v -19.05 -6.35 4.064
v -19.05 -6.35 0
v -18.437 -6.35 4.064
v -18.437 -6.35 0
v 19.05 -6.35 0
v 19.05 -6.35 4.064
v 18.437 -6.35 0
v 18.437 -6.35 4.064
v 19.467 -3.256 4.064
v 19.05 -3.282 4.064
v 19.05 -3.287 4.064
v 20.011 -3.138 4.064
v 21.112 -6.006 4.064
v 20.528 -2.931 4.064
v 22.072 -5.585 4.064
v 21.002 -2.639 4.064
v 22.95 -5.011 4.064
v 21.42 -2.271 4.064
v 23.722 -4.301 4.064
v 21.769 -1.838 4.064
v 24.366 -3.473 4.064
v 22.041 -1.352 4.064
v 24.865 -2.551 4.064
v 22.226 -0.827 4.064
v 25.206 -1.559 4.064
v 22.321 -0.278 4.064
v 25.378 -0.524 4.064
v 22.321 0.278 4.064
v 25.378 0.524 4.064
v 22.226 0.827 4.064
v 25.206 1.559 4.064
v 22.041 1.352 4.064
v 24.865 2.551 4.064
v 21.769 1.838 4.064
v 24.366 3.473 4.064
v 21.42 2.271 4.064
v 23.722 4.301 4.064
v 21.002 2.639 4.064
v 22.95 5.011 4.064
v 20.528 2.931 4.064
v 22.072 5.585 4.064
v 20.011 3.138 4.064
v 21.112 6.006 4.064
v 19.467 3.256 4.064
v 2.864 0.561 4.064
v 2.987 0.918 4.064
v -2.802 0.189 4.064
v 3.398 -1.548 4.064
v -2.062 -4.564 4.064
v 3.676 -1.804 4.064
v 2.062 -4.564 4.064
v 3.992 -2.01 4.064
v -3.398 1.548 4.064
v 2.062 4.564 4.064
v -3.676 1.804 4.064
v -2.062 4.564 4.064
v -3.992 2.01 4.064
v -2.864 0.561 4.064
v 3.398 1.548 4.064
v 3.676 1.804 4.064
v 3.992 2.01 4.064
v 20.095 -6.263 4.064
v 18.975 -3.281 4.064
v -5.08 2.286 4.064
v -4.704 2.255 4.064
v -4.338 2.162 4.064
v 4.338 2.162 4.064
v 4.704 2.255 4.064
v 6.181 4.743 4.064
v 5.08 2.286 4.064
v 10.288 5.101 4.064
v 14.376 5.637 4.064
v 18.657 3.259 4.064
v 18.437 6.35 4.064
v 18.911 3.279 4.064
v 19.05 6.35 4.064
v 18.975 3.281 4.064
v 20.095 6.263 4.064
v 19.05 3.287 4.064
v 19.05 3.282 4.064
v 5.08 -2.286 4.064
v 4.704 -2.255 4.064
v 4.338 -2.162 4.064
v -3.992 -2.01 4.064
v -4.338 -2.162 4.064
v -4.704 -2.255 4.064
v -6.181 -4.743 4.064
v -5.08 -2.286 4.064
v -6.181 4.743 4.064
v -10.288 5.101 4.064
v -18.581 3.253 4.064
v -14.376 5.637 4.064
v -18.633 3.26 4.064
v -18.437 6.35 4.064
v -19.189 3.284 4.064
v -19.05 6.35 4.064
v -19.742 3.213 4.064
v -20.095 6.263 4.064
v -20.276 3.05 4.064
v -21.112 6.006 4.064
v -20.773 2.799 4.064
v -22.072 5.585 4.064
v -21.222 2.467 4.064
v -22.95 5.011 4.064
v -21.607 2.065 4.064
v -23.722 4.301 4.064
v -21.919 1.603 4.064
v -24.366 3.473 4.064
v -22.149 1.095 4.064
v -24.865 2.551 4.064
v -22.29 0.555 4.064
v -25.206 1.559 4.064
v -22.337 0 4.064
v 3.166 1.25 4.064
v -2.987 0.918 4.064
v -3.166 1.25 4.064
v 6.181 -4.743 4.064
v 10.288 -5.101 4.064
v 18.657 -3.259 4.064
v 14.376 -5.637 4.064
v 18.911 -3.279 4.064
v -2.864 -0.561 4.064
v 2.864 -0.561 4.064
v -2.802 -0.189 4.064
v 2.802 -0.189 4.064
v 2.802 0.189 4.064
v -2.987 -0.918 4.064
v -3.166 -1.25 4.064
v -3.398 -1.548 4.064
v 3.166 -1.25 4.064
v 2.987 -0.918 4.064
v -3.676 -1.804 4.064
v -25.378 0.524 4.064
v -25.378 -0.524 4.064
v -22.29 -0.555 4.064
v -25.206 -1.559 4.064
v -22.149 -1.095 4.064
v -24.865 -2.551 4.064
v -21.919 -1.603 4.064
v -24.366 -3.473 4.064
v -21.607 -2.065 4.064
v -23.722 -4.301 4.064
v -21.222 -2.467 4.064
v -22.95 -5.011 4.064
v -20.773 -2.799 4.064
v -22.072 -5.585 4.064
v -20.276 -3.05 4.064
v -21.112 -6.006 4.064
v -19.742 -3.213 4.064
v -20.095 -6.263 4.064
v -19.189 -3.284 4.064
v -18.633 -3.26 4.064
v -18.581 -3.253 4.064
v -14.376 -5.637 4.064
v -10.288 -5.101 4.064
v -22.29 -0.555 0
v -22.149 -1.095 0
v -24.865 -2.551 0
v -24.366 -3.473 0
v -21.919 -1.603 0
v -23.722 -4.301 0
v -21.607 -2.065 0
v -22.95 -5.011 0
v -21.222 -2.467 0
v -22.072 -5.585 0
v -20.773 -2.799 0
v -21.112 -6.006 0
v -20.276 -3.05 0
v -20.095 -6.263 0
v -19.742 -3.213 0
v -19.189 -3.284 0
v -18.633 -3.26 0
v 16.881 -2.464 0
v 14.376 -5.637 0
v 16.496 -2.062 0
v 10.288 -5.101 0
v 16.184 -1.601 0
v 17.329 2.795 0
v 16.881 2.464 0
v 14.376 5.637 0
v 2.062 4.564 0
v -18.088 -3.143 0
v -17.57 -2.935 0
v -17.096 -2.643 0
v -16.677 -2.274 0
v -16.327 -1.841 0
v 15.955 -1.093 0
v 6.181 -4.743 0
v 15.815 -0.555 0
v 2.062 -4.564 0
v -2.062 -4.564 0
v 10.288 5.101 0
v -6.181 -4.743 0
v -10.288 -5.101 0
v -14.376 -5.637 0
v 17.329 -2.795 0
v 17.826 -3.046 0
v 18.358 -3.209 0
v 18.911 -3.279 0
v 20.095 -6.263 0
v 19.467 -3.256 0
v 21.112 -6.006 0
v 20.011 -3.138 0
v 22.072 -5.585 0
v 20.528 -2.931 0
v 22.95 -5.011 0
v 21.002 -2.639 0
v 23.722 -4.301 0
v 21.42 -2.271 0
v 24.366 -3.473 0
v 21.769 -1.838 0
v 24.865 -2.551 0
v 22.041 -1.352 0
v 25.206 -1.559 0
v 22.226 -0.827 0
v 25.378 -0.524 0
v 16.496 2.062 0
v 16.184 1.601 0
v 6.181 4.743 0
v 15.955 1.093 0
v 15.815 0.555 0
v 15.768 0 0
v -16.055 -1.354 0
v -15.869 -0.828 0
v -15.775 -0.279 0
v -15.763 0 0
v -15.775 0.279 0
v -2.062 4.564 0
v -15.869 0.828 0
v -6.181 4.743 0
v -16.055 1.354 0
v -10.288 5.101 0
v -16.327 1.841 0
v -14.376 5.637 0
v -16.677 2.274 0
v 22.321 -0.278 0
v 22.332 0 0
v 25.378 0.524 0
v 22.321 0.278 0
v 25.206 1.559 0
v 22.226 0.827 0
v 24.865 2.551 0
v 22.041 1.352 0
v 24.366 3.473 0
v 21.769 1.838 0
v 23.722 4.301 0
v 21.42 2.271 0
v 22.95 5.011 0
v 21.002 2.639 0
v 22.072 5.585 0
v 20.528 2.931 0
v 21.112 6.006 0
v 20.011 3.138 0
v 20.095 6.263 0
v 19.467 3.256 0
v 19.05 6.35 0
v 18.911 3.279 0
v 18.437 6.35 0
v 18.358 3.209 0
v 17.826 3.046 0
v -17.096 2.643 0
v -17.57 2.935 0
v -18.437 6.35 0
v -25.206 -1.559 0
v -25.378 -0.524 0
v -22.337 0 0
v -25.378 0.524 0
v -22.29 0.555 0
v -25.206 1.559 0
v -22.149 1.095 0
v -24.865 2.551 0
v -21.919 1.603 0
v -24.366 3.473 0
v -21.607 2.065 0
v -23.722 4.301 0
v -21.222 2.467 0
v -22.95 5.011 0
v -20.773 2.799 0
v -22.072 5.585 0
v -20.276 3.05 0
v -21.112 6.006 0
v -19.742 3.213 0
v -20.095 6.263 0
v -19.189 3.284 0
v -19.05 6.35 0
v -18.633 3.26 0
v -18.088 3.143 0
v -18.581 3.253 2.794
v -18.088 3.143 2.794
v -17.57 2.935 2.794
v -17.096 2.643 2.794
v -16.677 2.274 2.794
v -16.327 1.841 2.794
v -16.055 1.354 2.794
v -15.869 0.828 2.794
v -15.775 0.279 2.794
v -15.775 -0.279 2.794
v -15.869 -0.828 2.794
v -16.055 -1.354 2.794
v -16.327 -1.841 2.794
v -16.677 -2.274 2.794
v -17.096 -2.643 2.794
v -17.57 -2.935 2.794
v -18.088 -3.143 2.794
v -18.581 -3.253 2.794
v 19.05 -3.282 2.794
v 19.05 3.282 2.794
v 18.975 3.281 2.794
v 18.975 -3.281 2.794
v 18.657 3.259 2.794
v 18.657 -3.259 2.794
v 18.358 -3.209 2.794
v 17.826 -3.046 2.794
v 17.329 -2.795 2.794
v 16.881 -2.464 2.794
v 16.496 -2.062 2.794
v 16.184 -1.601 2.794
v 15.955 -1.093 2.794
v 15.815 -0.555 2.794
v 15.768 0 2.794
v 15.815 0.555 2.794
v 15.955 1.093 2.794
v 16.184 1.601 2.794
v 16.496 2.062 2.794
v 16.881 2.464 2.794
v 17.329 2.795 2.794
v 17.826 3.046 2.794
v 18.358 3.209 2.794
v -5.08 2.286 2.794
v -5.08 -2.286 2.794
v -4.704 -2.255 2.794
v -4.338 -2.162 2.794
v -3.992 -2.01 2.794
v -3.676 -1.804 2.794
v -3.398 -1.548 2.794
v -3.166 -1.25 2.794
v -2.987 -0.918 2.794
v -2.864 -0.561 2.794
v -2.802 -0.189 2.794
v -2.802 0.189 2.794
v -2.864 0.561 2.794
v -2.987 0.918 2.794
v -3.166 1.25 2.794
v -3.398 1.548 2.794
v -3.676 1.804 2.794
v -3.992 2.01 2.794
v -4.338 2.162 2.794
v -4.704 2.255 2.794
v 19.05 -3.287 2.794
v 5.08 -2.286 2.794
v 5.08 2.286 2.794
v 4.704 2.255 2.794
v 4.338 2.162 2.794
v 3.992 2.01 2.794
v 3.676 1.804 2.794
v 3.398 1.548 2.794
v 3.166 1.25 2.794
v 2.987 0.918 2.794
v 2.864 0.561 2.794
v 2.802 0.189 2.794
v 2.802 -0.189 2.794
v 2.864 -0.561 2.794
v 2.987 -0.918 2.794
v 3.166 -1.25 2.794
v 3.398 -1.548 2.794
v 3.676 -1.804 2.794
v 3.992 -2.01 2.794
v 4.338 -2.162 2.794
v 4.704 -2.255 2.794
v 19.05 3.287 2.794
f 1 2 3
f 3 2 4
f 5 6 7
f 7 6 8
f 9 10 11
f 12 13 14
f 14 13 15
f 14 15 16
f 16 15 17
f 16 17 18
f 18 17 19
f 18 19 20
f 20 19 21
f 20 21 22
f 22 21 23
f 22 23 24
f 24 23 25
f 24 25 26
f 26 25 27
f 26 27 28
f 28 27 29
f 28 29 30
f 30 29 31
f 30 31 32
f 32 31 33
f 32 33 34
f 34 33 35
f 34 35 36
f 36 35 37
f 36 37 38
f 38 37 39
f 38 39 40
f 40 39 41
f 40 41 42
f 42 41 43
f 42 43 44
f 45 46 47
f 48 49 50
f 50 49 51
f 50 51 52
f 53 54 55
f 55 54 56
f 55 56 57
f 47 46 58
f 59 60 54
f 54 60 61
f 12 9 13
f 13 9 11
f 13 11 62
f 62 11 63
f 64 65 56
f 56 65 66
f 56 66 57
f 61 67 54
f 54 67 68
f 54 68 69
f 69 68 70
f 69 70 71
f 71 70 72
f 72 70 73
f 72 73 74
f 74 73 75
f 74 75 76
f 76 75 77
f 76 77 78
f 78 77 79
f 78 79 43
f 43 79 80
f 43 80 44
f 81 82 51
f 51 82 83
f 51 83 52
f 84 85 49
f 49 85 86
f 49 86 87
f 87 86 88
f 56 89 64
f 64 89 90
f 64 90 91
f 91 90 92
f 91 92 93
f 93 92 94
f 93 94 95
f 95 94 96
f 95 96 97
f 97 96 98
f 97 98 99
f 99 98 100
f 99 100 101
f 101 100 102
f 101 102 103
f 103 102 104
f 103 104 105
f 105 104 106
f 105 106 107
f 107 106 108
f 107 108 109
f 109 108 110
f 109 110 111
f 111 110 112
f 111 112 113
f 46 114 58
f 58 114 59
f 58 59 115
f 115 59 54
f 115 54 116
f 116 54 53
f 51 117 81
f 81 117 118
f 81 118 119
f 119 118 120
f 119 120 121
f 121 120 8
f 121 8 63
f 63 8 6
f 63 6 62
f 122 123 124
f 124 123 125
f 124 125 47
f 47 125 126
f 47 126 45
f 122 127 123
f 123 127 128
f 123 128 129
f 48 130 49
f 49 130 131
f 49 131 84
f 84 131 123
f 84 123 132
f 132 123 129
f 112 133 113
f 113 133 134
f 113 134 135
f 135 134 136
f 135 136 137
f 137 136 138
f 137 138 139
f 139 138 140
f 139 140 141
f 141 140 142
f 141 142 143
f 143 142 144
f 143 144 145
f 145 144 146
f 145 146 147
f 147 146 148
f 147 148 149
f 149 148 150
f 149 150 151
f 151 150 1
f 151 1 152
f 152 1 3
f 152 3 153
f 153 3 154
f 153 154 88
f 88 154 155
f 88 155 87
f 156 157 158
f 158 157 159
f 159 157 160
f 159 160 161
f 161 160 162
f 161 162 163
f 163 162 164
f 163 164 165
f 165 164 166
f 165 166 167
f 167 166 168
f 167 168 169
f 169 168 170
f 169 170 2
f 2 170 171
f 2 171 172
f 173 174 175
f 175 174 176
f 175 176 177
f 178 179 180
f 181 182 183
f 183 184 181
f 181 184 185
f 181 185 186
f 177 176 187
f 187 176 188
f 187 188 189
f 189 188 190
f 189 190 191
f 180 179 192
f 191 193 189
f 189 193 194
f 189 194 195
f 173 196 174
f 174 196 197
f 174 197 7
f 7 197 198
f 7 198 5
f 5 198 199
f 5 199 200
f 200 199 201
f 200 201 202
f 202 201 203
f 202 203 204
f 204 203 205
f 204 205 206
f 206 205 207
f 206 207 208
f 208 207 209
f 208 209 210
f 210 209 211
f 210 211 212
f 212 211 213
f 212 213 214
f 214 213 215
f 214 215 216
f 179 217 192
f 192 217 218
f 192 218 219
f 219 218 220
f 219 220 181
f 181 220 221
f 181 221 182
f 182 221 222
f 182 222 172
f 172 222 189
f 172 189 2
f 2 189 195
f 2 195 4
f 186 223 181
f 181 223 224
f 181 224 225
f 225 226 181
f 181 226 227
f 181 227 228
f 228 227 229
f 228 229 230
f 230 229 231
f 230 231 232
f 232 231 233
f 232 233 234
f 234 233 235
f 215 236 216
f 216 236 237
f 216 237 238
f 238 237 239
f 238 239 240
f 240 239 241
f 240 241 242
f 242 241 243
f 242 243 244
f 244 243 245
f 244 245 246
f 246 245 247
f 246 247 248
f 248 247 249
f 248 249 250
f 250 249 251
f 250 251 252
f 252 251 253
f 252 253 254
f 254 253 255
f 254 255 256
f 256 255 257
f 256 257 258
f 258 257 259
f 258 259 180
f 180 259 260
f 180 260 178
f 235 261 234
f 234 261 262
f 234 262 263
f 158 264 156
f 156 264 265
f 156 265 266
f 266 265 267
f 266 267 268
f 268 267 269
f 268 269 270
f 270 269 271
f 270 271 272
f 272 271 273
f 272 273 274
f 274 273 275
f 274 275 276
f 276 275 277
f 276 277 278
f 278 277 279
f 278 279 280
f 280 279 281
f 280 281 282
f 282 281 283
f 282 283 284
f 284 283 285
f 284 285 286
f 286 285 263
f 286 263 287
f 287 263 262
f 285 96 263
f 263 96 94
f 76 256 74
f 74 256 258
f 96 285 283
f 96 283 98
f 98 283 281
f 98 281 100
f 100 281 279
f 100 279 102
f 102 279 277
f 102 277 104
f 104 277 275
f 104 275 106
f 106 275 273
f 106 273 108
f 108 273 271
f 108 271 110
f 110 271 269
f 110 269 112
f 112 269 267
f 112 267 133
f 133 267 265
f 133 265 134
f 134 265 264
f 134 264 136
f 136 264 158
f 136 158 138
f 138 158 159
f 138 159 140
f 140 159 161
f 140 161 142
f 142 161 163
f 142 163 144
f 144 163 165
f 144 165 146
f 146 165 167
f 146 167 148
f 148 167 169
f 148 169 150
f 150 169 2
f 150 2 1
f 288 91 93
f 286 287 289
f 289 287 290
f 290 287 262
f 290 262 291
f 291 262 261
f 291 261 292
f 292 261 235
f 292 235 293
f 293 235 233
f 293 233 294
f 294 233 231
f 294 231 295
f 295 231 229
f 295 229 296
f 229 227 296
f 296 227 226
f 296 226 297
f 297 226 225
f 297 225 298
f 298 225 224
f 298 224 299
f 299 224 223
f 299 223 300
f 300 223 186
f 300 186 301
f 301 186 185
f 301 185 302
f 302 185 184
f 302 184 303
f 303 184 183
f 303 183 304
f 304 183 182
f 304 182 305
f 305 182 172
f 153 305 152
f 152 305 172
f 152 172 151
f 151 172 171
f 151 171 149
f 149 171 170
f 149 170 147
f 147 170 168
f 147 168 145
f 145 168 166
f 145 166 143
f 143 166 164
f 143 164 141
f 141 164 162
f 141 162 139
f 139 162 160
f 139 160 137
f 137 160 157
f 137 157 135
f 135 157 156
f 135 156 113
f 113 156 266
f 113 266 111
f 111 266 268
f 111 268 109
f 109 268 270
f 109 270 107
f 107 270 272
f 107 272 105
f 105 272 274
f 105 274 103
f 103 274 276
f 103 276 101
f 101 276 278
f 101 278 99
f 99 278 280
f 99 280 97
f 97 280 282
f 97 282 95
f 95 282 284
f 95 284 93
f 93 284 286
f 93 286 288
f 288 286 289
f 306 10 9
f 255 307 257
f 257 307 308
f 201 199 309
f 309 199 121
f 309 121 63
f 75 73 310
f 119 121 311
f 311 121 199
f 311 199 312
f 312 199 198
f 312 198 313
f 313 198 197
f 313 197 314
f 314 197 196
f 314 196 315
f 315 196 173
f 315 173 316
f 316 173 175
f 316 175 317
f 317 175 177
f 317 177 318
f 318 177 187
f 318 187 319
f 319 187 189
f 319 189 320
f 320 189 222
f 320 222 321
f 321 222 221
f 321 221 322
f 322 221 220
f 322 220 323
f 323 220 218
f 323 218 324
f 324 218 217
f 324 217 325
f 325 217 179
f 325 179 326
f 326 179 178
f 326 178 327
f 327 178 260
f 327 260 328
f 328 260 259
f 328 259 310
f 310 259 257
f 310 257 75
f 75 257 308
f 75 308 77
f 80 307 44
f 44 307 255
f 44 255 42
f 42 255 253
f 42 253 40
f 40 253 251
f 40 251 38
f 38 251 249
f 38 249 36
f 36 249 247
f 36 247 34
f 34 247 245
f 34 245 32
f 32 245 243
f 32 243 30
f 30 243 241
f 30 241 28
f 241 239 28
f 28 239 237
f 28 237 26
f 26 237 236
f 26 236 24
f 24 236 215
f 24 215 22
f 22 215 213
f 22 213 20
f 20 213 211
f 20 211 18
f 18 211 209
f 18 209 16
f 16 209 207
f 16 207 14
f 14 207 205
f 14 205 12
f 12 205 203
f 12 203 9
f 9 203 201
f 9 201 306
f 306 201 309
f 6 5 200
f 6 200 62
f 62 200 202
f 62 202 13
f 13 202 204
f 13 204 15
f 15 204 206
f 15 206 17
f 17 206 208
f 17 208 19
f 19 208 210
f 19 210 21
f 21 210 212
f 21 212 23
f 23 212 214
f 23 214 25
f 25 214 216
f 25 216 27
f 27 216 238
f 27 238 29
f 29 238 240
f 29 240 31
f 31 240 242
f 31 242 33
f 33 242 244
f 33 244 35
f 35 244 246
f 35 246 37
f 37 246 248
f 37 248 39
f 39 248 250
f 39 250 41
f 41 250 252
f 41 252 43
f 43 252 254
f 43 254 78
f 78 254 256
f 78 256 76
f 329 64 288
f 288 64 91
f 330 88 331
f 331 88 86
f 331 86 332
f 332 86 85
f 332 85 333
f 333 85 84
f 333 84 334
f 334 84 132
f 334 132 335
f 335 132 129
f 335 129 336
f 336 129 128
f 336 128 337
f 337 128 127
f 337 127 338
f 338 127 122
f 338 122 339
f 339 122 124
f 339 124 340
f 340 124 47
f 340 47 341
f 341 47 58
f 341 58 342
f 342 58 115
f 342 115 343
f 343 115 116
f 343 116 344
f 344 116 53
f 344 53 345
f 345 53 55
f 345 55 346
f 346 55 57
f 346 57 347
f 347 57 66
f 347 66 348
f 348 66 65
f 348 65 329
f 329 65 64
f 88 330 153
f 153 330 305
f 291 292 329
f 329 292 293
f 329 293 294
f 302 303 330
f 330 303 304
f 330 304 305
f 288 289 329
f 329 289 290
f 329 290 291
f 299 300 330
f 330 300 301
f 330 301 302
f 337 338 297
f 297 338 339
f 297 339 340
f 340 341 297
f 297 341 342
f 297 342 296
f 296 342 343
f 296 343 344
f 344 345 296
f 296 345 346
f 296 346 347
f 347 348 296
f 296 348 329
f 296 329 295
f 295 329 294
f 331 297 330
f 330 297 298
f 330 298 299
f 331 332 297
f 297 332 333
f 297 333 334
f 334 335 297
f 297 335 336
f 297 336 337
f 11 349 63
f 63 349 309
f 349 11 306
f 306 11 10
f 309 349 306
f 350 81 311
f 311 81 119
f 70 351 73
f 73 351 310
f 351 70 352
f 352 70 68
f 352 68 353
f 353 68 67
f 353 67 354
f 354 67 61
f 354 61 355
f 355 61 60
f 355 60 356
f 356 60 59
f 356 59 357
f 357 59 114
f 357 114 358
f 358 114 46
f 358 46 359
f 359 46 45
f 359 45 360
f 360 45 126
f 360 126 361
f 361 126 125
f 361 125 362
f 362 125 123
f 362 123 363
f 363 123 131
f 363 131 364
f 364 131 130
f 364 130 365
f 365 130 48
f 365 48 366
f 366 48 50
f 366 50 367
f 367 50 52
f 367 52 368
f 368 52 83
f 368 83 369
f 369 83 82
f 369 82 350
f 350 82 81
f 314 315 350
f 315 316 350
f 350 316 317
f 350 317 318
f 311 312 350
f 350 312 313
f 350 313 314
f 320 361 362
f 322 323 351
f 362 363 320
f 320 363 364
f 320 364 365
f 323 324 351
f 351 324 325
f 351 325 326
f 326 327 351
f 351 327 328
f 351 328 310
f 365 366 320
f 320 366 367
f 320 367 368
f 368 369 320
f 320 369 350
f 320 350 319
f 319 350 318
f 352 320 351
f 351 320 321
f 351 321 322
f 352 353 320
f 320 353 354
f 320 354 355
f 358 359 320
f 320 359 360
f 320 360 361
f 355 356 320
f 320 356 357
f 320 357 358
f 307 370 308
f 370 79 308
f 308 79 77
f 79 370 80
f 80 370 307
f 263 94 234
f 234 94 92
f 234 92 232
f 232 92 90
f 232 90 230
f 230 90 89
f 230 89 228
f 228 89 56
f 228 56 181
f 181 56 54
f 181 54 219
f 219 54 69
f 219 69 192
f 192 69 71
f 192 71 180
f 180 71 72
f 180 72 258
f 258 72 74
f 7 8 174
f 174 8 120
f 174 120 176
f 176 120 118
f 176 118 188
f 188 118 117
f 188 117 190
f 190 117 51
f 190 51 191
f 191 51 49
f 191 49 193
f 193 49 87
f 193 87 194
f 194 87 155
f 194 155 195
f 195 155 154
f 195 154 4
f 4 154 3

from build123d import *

# Parameters (mm, degrees)
SKETCH1_R           = 3.286877418
SKETCH1_R_2         = 3.282339501
BOSS_EXTRUDE2_DEPTH = 4.064
CUT_EXTRUDE1_DEPTH  = 1.27
CUT_EXTRUDE2_DEPTH  = 5.064


with BuildPart() as part:
    # Sketch1 → Boss-Extrude2 (new body)
    with BuildSketch(Plane.XY):
        with BuildLine():
            Line((-19.05, 6.35), (19.05, 6.35))
            ThreePointArc((19.05, 6.35), (25.4, 0), (19.05, -6.35))
            Line((19.05, -6.35), (-19.05, -6.35))
            ThreePointArc((-19.05, -6.35), (-25.4, 0), (-19.05, 6.35))
        make_face()
        with Locations((-19.05, 0)):
            Circle(SKETCH1_R, mode=Mode.SUBTRACT)
        with Locations((19.05, 0)):
            Circle(SKETCH1_R_2, mode=Mode.SUBTRACT)
    extrude(amount=BOSS_EXTRUDE2_DEPTH)

    # Sketch2 → Cut-Extrude1 (cut)
    with BuildSketch(Plane.XY.offset(4.064)):
        with BuildLine():
            Line((-19.05, 3.286877418), (-5.08, 2.286))
            ThreePointArc((-5.08, 2.286), (-2.794, 0), (-5.08, -2.286))
            Line((-5.08, -2.286), (-19.05, -3.286877418))
            Line((-19.05, -3.286877418), (-19.05, 3.286877418))
        make_face()
        with BuildLine():
            Line((19.05, -3.286877418), (5.08, -2.286))
            ThreePointArc((5.08, -2.286), (2.794, 0), (5.08, 2.286))
            Line((5.08, 2.286), (19.05, 3.286877418))
            Line((19.05, 3.286877418), (19.05, -3.286877418))
        make_face()
    extrude(amount=-CUT_EXTRUDE1_DEPTH, mode=Mode.SUBTRACT)

    # Sketch4 → Cut-Extrude2 (cut, through all)
    with BuildSketch(Plane.XY.offset(4.064)):
        with BuildLine():
            ThreePointArc((18.437330889, 6.35), (73.326339368, 39.20432916), (94.889393238, 99.430942082))
            ThreePointArc((94.889393238, 99.430942082), (-60.226612922, 172.75728145), (-18.437330889, 6.35))
            Line((-18.437330889, 6.35), (18.437330889, 6.35))
        make_face()
        with BuildLine():
            Line((18.437330889, 6.35), (-18.437330889, 6.35))
            ThreePointArc((-18.437330889, 6.35), (-18.146321247, 6.29282972), (-17.855134345, 6.236569254))
            ThreePointArc((-17.855134345, 6.236569254), (-1.97e-07, 4.541548843), (17.855133958, 6.23656918))
            ThreePointArc((17.855133958, 6.23656918), (18.146321054, 6.292829682), (18.437330889, 6.35))
        make_face()
        with BuildLine():
            ThreePointArc((18.437330889, -6.35), (18.146321056, -6.292829683), (17.855133961, -6.236569181))
            ThreePointArc((17.855133961, -6.236569181), (-1.46e-07, -4.541548843), (-17.855134248, -6.236569236))
            ThreePointArc((-17.855134248, -6.236569236), (-18.146321199, -6.292829711), (-18.437330889, -6.35))
            Line((-18.437330889, -6.35), (18.437330889, -6.35))
        make_face()
        with BuildLine():
            Line((18.437330889, -6.35), (-18.437330889, -6.35))
            ThreePointArc((-18.437330889, -6.35), (-60.226612922, -172.75728145), (94.889393238, -99.430942082))
            ThreePointArc((94.889393238, -99.430942082), (73.326339368, -39.20432916), (18.437330889, -6.35))
        make_face()
    extrude(amount=-CUT_EXTRUDE2_DEPTH, mode=Mode.SUBTRACT)


solid = part.part
